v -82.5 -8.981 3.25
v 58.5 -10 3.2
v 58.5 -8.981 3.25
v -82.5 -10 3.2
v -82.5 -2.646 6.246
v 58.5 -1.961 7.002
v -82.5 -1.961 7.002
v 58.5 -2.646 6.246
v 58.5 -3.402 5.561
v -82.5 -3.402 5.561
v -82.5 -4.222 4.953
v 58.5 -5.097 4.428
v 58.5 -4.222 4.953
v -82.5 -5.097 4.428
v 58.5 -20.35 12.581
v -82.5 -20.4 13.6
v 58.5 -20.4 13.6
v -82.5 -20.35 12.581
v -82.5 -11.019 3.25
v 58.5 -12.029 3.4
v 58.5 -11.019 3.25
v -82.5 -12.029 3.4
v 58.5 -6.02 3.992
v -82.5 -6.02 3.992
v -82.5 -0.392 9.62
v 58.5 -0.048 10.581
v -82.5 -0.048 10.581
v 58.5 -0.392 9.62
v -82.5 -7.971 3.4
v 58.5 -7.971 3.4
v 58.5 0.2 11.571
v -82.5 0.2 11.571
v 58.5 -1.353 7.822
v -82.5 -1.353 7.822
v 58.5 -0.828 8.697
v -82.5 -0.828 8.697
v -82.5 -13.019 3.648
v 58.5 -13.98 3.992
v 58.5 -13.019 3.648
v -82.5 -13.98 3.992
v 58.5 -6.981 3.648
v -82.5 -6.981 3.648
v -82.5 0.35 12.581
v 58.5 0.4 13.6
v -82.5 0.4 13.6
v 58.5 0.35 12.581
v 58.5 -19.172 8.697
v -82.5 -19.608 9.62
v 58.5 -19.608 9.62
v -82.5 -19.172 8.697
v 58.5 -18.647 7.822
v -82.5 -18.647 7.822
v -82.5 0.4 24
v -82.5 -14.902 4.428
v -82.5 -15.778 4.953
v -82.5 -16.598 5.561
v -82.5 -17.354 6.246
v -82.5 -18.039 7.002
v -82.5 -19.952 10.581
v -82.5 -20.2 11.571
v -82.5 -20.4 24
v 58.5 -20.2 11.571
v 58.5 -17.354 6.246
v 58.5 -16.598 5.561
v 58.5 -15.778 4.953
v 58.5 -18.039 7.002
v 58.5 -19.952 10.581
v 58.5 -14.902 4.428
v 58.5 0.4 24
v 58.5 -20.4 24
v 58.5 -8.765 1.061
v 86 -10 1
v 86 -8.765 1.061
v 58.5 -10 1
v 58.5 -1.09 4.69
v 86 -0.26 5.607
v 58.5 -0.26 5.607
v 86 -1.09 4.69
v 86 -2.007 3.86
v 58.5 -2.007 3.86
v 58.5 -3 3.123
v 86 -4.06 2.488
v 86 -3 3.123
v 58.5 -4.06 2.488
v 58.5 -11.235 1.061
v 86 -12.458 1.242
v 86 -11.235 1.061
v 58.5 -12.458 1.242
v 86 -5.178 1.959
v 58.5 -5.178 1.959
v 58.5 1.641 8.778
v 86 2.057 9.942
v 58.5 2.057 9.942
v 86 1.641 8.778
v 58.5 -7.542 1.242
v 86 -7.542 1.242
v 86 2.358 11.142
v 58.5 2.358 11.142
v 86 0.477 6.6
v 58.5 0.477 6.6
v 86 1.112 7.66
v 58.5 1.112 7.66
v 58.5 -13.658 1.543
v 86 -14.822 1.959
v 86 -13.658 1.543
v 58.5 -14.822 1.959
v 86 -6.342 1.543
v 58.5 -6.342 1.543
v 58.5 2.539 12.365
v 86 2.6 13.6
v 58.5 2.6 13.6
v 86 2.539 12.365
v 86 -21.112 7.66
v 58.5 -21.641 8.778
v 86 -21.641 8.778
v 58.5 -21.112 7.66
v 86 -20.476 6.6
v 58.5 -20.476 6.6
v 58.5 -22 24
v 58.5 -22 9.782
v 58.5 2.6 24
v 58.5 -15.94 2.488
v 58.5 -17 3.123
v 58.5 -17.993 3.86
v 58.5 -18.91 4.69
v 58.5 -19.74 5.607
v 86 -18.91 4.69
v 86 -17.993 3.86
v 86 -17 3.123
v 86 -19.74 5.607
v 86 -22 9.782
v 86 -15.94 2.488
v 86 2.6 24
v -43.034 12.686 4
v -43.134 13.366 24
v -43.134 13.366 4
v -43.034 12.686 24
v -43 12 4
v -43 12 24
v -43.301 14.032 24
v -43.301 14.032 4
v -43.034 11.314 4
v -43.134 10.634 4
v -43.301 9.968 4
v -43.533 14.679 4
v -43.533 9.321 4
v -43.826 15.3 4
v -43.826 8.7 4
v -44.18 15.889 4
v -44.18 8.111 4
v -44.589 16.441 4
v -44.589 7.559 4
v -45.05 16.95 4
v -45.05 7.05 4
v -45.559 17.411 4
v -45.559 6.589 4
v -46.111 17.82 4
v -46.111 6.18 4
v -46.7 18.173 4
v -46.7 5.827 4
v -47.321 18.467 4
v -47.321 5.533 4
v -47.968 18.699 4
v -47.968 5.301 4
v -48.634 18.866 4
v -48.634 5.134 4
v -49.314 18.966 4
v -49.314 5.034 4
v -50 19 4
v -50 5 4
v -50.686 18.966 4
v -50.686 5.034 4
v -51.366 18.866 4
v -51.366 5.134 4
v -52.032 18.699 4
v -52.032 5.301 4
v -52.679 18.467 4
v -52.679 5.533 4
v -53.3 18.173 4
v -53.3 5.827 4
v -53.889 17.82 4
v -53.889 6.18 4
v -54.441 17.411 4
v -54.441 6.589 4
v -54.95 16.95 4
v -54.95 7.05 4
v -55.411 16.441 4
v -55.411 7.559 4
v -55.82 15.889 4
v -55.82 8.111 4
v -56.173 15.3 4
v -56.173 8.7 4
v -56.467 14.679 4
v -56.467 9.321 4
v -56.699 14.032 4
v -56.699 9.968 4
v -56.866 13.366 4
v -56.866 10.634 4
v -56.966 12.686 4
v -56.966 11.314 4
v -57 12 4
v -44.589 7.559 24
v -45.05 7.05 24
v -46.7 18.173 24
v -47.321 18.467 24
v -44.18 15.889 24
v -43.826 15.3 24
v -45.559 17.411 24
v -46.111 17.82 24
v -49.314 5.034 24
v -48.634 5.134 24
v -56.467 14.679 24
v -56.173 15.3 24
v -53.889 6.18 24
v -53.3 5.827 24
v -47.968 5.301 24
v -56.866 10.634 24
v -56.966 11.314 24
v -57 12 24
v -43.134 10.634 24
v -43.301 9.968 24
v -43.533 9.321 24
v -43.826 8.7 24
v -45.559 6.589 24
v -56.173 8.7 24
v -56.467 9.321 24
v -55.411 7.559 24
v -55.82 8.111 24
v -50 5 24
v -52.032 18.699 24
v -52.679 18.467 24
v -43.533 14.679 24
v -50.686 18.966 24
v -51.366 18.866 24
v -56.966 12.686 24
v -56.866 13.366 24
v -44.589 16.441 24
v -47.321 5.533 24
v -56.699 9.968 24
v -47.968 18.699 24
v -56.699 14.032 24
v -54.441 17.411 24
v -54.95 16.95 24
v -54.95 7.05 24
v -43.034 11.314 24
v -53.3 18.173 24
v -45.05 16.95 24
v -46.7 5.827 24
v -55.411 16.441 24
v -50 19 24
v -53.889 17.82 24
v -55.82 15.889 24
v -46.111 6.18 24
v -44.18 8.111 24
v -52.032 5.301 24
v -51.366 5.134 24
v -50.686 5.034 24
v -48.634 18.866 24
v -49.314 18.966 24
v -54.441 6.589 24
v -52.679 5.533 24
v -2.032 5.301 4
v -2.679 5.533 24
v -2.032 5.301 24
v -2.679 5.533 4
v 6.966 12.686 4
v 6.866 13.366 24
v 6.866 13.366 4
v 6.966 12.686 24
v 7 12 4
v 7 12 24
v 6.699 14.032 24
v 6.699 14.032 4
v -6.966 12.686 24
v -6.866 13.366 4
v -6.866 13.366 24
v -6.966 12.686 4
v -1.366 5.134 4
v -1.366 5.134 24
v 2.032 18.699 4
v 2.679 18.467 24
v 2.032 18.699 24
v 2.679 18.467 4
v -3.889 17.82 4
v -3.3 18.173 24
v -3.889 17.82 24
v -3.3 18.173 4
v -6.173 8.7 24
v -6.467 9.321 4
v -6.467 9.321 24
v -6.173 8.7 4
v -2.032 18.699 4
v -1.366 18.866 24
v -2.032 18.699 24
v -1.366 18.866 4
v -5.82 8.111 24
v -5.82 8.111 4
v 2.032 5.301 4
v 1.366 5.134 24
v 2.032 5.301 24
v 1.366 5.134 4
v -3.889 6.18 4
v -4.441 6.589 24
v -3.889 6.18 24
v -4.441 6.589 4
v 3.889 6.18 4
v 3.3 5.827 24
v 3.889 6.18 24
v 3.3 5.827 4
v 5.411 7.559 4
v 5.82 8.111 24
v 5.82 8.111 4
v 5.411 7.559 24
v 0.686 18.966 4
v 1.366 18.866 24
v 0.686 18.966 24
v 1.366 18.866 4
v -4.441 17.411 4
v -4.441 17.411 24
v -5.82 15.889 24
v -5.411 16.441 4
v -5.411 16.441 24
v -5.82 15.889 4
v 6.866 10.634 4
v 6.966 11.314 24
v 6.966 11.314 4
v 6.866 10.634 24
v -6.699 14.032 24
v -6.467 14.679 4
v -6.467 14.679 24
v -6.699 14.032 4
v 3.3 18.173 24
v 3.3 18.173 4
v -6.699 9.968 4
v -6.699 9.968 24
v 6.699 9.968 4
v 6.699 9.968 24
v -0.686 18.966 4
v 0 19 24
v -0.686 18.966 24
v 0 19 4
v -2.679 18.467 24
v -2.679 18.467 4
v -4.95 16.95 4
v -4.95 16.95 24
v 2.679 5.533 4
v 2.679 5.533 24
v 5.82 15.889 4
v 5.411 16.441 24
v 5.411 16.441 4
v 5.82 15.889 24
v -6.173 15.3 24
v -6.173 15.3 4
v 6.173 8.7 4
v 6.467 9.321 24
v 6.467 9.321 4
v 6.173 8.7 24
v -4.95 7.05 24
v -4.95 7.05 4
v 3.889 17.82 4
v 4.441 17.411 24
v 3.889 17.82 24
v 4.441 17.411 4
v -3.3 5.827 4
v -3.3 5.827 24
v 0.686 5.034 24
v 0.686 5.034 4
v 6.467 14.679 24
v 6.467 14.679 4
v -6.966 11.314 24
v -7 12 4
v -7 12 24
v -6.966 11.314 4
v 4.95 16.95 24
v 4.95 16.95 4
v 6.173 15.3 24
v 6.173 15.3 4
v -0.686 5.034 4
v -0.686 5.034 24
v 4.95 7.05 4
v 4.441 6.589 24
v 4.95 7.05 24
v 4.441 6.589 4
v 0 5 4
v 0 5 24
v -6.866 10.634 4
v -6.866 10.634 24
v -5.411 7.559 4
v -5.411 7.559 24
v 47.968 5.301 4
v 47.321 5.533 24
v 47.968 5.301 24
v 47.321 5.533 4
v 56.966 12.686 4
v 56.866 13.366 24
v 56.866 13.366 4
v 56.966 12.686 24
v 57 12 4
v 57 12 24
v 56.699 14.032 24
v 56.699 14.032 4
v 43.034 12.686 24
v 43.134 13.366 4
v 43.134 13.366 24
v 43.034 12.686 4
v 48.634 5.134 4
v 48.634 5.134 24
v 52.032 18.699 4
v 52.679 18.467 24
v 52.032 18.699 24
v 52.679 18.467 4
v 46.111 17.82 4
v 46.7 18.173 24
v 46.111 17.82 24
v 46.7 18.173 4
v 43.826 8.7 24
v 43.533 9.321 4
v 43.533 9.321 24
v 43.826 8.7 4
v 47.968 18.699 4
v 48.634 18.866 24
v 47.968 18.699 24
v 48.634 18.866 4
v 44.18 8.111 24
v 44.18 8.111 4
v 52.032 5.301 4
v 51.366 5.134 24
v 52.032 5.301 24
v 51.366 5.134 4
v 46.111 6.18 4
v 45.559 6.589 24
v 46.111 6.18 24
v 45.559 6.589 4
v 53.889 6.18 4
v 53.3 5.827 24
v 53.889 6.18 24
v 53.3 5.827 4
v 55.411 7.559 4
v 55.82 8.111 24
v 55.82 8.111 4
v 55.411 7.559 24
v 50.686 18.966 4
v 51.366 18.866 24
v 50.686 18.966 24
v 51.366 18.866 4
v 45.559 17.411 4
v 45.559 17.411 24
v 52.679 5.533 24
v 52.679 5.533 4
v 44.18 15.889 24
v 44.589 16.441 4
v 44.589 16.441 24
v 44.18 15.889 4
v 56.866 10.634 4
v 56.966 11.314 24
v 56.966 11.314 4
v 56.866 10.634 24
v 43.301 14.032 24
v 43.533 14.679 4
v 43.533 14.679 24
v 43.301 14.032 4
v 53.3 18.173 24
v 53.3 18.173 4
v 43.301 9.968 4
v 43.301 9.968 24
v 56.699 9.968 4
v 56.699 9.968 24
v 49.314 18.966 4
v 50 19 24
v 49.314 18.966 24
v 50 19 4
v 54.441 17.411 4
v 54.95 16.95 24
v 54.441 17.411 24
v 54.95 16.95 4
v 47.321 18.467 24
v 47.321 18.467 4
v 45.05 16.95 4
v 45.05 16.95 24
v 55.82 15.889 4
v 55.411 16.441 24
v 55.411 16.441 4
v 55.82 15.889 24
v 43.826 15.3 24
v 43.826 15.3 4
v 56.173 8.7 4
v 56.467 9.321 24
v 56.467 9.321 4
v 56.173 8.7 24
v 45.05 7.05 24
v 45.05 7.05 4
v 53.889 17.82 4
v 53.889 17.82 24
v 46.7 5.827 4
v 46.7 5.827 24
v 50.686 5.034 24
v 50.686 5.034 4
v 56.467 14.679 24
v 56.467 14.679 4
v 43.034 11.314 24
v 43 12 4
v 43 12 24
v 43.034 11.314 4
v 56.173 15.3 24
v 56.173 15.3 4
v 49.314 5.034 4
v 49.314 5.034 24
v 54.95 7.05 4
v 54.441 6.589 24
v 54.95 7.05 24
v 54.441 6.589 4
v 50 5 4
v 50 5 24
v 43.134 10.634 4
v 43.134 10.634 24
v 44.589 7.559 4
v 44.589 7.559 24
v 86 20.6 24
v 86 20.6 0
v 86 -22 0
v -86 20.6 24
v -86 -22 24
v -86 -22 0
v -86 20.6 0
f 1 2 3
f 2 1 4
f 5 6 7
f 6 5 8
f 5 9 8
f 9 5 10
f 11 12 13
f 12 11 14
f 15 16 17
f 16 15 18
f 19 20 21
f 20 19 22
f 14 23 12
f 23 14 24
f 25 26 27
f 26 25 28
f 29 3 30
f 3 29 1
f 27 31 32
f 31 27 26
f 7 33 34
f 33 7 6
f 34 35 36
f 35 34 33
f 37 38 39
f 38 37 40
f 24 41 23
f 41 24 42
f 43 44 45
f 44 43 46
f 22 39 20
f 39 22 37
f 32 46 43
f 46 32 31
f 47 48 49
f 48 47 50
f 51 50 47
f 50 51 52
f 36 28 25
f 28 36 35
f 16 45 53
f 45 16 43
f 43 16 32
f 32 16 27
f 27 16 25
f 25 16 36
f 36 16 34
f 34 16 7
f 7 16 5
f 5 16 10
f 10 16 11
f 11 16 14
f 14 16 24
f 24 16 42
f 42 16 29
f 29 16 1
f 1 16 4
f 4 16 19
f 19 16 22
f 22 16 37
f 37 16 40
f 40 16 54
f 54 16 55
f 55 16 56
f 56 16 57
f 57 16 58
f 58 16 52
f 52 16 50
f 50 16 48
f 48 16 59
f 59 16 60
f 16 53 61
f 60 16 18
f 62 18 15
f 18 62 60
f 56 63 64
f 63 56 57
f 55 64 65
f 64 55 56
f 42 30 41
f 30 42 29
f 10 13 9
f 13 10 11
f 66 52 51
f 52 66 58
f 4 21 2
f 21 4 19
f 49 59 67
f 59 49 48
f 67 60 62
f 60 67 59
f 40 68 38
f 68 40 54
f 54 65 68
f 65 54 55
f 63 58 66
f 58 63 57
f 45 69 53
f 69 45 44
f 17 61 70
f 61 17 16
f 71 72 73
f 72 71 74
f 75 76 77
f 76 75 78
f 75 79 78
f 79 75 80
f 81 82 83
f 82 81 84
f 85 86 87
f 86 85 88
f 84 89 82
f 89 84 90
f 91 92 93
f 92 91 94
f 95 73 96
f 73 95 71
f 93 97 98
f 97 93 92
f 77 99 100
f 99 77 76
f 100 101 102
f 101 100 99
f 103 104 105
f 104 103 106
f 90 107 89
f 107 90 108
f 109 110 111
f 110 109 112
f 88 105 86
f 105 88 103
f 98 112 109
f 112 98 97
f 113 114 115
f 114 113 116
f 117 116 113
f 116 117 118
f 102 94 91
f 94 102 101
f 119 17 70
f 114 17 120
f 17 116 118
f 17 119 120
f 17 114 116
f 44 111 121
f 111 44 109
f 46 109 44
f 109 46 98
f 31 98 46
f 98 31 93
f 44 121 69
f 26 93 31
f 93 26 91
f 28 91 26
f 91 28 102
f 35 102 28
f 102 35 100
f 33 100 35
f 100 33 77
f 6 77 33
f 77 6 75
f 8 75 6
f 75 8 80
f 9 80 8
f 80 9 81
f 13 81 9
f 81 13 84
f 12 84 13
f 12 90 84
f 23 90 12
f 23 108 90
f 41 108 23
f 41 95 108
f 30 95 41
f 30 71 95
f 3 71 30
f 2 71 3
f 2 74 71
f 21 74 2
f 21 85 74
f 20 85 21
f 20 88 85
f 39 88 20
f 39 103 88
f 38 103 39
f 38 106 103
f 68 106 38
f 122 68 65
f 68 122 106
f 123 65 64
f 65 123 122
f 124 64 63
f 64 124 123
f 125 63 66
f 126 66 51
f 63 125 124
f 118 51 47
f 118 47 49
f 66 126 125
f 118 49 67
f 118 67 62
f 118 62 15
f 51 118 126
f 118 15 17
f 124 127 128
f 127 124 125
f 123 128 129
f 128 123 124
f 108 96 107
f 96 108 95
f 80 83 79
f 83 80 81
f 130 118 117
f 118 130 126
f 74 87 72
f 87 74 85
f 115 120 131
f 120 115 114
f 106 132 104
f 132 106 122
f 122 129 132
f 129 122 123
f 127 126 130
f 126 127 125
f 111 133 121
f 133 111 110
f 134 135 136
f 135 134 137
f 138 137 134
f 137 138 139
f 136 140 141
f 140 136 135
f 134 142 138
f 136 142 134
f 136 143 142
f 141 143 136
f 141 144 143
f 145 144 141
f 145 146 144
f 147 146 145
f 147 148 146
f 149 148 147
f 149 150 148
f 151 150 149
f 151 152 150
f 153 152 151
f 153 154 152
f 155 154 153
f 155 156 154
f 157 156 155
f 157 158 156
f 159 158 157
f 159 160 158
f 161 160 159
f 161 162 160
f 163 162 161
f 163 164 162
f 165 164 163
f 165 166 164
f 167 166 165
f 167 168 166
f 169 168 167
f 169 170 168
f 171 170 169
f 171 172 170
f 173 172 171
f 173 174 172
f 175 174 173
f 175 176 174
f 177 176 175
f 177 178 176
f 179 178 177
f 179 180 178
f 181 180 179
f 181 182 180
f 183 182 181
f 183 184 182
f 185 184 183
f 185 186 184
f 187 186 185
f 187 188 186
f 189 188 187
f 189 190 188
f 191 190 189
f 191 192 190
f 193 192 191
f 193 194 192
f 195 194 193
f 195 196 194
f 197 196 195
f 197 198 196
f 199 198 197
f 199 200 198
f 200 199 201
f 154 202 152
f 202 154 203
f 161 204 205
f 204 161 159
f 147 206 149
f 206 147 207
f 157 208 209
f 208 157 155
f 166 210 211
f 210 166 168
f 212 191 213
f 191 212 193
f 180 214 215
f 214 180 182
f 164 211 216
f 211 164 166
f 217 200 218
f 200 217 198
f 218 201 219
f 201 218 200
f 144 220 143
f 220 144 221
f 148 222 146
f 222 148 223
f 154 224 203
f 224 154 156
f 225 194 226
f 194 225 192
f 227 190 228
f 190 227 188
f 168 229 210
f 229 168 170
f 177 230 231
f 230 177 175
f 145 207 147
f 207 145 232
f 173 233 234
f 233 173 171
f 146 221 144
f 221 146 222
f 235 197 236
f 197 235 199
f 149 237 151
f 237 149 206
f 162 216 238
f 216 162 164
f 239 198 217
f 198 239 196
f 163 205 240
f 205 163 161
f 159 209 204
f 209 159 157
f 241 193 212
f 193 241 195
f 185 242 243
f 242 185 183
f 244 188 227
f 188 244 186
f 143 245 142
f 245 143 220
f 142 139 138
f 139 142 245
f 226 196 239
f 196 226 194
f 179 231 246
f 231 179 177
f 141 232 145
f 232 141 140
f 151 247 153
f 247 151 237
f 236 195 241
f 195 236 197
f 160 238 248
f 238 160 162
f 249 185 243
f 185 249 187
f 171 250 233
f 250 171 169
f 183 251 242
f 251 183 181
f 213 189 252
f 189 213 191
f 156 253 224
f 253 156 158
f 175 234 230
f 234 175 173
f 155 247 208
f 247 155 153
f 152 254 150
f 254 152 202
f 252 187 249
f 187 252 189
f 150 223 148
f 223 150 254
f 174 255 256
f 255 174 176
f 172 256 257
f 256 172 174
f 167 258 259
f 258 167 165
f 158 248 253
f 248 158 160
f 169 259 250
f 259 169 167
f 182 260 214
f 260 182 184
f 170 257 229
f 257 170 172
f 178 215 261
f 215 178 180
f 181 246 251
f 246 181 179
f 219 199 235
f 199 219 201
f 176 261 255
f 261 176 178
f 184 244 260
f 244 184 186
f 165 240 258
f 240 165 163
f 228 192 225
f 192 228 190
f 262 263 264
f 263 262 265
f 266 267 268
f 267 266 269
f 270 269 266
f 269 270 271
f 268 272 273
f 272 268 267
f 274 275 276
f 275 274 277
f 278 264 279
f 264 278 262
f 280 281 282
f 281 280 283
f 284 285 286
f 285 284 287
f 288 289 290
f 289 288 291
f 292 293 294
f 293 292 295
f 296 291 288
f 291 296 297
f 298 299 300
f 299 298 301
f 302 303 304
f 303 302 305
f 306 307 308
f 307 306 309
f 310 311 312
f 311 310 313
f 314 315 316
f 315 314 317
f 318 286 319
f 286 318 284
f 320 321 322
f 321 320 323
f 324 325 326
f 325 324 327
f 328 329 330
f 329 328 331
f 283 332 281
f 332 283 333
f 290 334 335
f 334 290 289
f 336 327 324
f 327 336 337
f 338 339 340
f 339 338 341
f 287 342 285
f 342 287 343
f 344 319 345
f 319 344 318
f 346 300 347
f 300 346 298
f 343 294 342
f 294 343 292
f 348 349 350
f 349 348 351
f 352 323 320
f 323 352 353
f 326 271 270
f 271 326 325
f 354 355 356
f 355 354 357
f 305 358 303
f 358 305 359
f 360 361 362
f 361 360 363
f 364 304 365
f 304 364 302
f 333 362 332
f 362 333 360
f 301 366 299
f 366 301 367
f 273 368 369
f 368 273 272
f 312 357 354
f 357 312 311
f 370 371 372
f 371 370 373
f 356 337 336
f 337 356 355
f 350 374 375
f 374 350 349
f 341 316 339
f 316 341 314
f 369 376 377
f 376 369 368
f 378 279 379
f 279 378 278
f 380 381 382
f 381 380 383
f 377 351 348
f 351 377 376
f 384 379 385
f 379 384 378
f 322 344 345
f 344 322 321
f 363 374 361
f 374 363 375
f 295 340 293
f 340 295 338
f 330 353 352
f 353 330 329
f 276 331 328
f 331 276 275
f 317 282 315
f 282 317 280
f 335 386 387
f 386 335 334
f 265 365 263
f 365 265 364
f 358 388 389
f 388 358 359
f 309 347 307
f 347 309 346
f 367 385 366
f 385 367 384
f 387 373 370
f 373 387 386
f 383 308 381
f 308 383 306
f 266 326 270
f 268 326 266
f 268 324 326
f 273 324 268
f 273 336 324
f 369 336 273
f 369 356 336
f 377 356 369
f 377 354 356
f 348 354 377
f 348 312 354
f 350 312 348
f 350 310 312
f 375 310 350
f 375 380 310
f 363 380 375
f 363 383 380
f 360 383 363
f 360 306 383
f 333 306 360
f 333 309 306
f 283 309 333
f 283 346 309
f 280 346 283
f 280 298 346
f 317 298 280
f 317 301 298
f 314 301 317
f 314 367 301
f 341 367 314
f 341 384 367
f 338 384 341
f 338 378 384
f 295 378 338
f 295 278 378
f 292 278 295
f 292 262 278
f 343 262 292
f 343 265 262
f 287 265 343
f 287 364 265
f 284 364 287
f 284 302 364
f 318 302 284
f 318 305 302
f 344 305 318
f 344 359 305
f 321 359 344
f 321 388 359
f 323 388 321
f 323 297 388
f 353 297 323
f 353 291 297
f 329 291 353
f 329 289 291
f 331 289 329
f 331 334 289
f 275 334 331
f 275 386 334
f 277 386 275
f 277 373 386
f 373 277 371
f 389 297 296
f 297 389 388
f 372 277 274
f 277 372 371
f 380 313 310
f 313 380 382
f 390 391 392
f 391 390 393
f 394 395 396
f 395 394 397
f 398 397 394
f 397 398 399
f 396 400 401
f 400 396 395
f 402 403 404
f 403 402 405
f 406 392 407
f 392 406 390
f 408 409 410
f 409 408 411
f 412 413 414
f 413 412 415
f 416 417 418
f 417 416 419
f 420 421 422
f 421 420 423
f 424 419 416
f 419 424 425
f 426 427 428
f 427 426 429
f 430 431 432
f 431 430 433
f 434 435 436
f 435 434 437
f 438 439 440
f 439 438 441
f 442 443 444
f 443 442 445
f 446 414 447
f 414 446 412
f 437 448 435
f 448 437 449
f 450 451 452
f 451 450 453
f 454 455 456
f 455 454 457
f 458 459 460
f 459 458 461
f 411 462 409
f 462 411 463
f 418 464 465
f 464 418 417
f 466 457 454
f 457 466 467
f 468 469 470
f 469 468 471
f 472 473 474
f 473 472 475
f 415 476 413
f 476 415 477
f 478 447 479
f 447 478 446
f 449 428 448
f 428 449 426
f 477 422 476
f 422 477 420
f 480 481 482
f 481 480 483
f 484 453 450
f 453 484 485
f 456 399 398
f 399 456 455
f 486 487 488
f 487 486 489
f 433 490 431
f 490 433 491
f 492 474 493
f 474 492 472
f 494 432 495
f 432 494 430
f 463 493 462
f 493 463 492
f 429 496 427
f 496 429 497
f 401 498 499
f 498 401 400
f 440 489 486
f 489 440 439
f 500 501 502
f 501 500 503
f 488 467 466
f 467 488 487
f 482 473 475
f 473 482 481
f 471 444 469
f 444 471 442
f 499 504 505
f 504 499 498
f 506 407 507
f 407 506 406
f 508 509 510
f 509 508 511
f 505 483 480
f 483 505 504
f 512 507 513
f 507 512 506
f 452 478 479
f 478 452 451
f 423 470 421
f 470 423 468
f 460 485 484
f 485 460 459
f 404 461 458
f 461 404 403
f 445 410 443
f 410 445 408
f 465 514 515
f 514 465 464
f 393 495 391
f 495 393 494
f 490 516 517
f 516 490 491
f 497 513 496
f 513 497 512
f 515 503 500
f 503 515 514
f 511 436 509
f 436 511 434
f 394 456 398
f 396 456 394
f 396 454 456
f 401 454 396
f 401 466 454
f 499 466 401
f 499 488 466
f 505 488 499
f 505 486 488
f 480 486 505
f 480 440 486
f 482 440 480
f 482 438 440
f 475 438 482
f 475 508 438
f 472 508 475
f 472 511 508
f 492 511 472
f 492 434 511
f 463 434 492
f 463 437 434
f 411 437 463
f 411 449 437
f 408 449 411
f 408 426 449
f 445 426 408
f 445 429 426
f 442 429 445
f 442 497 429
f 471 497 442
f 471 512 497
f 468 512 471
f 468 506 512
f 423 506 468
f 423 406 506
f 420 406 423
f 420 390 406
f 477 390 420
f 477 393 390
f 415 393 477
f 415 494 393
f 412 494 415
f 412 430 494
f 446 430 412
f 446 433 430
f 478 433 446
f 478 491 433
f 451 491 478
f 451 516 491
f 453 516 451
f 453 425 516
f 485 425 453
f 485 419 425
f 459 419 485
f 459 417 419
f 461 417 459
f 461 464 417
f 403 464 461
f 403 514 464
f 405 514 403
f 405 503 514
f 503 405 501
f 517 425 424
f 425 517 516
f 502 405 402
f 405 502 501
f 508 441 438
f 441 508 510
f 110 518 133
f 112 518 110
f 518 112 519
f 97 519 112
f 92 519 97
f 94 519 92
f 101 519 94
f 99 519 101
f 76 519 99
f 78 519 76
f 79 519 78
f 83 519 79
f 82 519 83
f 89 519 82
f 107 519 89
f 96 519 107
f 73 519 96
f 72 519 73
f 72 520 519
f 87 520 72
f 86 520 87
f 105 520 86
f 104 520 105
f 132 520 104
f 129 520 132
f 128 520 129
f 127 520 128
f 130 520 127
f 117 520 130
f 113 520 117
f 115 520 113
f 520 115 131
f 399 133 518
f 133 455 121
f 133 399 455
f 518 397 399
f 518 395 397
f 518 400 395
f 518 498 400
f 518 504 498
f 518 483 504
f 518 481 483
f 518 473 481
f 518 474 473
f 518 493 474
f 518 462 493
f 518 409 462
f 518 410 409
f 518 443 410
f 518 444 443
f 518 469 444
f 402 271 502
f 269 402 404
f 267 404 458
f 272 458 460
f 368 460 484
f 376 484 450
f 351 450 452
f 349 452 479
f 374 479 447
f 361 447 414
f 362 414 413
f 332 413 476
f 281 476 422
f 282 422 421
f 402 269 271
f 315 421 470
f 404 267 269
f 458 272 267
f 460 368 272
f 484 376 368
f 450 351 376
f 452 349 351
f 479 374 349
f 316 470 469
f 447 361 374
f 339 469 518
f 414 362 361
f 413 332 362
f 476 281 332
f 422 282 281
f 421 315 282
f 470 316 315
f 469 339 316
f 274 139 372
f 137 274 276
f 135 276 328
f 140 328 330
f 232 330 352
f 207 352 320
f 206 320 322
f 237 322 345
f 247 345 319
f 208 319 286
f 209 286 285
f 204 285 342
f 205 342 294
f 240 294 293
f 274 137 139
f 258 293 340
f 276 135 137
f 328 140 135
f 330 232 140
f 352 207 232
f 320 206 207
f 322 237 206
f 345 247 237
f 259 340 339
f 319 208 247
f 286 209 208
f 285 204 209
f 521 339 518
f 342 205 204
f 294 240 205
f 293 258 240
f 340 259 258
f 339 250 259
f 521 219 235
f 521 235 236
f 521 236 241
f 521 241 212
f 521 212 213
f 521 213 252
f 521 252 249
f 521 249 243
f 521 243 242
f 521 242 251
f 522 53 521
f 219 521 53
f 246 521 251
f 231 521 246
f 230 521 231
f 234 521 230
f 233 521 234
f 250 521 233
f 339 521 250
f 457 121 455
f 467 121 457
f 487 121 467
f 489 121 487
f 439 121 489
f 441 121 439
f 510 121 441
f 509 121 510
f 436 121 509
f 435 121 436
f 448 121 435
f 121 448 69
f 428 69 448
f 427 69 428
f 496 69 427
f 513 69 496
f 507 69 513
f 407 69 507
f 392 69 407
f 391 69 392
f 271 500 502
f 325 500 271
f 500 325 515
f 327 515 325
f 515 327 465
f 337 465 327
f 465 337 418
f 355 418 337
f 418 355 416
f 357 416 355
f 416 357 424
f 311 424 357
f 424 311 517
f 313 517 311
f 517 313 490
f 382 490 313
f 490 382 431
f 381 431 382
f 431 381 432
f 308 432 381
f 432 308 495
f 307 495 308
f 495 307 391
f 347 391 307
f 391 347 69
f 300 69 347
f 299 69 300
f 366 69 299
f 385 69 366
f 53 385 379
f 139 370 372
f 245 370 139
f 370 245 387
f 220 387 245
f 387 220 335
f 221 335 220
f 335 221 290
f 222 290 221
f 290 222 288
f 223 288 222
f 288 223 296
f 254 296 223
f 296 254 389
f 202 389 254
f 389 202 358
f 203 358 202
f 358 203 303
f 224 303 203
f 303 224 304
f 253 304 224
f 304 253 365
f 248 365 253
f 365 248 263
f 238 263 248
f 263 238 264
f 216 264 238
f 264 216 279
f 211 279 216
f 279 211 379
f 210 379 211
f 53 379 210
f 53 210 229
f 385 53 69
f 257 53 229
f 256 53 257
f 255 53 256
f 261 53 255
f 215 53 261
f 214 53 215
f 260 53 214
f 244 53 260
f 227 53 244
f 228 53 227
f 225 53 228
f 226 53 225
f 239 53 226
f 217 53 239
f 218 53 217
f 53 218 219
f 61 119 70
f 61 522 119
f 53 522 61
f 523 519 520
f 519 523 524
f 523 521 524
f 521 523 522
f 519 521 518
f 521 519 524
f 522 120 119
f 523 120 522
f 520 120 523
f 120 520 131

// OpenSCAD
// file: common.scad
// ============================================================
// common.scad — shared parameters + modules for all designs
// LOCKED PEN SPECIFICATION (do not change)
// ============================================================
PEN_L = 165;      // pen length (mm)
PEN_A = 17;       // pen cross-section minor
PEN_B = 20;       // pen cross-section major (used as diameter envelope)
CLEAR = 0.4;      // fit clearance
WALL  = 1.6;      // minimum wall thickness

$fn = 64;

RCH = PEN_B/2 + CLEAR;   // = 10.4  channel radius
EPS = 0.01;

// --- open-top U trough cut, axis along X, centered at local origin -----------
// Removes a lower half-cylinder of radius r plus a full-width vertical slot
// upward, so the channel is open at the top (no ceiling -> no overhang).
module trough_cut(len, r=RCH, top=80) {
    union() {
        rotate([0,90,0]) cylinder(h=len, r=r, center=true);
        translate([0,0,top/2]) cube([len, 2*r, top], center=true); // slot upward
    }
}

// --- teardrop hole, axis along X, centered at local origin --------------------
// 45-degree self-supporting apex pointing +Z so a horizontal bore can print
// without support.
module teardrop_cut(len, r=RCH) {
    rotate([0,90,0])
        linear_extrude(height=len, center=true)
            union() {
                circle(r=r);
                polygon([[ 0.7071*r, 0.7071*r],
                         [ 0,         1.4142*r],
                         [-0.7071*r,  0.7071*r]]);
            }
}

// --- dial relief: widened open-top pocket at one channel end -----------------
// place at the +X or -X end of a channel so the dose dial clears / can be turned
module dial_relief(end_x, r=RCH+2.2, len=28, top=80) {
    translate([end_x, 0, 0]) trough_cut(len, r, top);
}
// main file
// d5_vialcombo — one pen trough + a row of vertical vial wells
// Family: combo variant (pen + reconstitution vials). The pen rides in an
// open-top trough on one side; a parallel row of open-top vial wells holds the
// BAC water / lyophilized vials alongside.
// Creative variation: a single-station "kit" that pairs a pen with its vials.
include <common.scad>

LBLK = 172;
ZC_DEPTH = 24;                    // overall block height (vial depth driven)
HBLK = ZC_DEPTH;                  // 24  < 152.4

PEN_Y  = -10;                     // pen trough center in Y
VIAL_Y =  12;                     // vial row center in Y
ZC = HBLK - RCH;                  // raise pen so trough opens at the top

// width: pen side reaches PEN_Y-RCH-WALL ; vial side reaches VIAL_Y+VR+WALL
VIAL_D = 14;                      // vial well diameter
VR = VIAL_D/2;
WBLK = (VIAL_Y + VR + WALL) - (PEN_Y - RCH - WALL);   // ~ 45  < 63.5
YCEN = (PEN_Y - RCH - WALL + VIAL_Y + VR + WALL)/2;   // block Y center

VIAL_DEPTH = 20;                  // open-top blind wells
VIAL_X = [-50, 0, 50];           // three wells along the length

difference() {
    translate([0, YCEN, HBLK/2]) cube([LBLK, WBLK, HBLK], center=true);

    // pen trough + dial relief at +X end
    translate([0, PEN_Y, ZC]) trough_cut(PEN_L);
    translate([0, PEN_Y, ZC]) dial_relief(PEN_L/2 - 10);

    // vertical vial wells, open at the top (no ceiling -> no overhang)
    for (x = VIAL_X) {
        translate([x, VIAL_Y, HBLK - VIAL_DEPTH])
            cylinder(h = VIAL_DEPTH + EPS, d = VIAL_D);
    }
}
